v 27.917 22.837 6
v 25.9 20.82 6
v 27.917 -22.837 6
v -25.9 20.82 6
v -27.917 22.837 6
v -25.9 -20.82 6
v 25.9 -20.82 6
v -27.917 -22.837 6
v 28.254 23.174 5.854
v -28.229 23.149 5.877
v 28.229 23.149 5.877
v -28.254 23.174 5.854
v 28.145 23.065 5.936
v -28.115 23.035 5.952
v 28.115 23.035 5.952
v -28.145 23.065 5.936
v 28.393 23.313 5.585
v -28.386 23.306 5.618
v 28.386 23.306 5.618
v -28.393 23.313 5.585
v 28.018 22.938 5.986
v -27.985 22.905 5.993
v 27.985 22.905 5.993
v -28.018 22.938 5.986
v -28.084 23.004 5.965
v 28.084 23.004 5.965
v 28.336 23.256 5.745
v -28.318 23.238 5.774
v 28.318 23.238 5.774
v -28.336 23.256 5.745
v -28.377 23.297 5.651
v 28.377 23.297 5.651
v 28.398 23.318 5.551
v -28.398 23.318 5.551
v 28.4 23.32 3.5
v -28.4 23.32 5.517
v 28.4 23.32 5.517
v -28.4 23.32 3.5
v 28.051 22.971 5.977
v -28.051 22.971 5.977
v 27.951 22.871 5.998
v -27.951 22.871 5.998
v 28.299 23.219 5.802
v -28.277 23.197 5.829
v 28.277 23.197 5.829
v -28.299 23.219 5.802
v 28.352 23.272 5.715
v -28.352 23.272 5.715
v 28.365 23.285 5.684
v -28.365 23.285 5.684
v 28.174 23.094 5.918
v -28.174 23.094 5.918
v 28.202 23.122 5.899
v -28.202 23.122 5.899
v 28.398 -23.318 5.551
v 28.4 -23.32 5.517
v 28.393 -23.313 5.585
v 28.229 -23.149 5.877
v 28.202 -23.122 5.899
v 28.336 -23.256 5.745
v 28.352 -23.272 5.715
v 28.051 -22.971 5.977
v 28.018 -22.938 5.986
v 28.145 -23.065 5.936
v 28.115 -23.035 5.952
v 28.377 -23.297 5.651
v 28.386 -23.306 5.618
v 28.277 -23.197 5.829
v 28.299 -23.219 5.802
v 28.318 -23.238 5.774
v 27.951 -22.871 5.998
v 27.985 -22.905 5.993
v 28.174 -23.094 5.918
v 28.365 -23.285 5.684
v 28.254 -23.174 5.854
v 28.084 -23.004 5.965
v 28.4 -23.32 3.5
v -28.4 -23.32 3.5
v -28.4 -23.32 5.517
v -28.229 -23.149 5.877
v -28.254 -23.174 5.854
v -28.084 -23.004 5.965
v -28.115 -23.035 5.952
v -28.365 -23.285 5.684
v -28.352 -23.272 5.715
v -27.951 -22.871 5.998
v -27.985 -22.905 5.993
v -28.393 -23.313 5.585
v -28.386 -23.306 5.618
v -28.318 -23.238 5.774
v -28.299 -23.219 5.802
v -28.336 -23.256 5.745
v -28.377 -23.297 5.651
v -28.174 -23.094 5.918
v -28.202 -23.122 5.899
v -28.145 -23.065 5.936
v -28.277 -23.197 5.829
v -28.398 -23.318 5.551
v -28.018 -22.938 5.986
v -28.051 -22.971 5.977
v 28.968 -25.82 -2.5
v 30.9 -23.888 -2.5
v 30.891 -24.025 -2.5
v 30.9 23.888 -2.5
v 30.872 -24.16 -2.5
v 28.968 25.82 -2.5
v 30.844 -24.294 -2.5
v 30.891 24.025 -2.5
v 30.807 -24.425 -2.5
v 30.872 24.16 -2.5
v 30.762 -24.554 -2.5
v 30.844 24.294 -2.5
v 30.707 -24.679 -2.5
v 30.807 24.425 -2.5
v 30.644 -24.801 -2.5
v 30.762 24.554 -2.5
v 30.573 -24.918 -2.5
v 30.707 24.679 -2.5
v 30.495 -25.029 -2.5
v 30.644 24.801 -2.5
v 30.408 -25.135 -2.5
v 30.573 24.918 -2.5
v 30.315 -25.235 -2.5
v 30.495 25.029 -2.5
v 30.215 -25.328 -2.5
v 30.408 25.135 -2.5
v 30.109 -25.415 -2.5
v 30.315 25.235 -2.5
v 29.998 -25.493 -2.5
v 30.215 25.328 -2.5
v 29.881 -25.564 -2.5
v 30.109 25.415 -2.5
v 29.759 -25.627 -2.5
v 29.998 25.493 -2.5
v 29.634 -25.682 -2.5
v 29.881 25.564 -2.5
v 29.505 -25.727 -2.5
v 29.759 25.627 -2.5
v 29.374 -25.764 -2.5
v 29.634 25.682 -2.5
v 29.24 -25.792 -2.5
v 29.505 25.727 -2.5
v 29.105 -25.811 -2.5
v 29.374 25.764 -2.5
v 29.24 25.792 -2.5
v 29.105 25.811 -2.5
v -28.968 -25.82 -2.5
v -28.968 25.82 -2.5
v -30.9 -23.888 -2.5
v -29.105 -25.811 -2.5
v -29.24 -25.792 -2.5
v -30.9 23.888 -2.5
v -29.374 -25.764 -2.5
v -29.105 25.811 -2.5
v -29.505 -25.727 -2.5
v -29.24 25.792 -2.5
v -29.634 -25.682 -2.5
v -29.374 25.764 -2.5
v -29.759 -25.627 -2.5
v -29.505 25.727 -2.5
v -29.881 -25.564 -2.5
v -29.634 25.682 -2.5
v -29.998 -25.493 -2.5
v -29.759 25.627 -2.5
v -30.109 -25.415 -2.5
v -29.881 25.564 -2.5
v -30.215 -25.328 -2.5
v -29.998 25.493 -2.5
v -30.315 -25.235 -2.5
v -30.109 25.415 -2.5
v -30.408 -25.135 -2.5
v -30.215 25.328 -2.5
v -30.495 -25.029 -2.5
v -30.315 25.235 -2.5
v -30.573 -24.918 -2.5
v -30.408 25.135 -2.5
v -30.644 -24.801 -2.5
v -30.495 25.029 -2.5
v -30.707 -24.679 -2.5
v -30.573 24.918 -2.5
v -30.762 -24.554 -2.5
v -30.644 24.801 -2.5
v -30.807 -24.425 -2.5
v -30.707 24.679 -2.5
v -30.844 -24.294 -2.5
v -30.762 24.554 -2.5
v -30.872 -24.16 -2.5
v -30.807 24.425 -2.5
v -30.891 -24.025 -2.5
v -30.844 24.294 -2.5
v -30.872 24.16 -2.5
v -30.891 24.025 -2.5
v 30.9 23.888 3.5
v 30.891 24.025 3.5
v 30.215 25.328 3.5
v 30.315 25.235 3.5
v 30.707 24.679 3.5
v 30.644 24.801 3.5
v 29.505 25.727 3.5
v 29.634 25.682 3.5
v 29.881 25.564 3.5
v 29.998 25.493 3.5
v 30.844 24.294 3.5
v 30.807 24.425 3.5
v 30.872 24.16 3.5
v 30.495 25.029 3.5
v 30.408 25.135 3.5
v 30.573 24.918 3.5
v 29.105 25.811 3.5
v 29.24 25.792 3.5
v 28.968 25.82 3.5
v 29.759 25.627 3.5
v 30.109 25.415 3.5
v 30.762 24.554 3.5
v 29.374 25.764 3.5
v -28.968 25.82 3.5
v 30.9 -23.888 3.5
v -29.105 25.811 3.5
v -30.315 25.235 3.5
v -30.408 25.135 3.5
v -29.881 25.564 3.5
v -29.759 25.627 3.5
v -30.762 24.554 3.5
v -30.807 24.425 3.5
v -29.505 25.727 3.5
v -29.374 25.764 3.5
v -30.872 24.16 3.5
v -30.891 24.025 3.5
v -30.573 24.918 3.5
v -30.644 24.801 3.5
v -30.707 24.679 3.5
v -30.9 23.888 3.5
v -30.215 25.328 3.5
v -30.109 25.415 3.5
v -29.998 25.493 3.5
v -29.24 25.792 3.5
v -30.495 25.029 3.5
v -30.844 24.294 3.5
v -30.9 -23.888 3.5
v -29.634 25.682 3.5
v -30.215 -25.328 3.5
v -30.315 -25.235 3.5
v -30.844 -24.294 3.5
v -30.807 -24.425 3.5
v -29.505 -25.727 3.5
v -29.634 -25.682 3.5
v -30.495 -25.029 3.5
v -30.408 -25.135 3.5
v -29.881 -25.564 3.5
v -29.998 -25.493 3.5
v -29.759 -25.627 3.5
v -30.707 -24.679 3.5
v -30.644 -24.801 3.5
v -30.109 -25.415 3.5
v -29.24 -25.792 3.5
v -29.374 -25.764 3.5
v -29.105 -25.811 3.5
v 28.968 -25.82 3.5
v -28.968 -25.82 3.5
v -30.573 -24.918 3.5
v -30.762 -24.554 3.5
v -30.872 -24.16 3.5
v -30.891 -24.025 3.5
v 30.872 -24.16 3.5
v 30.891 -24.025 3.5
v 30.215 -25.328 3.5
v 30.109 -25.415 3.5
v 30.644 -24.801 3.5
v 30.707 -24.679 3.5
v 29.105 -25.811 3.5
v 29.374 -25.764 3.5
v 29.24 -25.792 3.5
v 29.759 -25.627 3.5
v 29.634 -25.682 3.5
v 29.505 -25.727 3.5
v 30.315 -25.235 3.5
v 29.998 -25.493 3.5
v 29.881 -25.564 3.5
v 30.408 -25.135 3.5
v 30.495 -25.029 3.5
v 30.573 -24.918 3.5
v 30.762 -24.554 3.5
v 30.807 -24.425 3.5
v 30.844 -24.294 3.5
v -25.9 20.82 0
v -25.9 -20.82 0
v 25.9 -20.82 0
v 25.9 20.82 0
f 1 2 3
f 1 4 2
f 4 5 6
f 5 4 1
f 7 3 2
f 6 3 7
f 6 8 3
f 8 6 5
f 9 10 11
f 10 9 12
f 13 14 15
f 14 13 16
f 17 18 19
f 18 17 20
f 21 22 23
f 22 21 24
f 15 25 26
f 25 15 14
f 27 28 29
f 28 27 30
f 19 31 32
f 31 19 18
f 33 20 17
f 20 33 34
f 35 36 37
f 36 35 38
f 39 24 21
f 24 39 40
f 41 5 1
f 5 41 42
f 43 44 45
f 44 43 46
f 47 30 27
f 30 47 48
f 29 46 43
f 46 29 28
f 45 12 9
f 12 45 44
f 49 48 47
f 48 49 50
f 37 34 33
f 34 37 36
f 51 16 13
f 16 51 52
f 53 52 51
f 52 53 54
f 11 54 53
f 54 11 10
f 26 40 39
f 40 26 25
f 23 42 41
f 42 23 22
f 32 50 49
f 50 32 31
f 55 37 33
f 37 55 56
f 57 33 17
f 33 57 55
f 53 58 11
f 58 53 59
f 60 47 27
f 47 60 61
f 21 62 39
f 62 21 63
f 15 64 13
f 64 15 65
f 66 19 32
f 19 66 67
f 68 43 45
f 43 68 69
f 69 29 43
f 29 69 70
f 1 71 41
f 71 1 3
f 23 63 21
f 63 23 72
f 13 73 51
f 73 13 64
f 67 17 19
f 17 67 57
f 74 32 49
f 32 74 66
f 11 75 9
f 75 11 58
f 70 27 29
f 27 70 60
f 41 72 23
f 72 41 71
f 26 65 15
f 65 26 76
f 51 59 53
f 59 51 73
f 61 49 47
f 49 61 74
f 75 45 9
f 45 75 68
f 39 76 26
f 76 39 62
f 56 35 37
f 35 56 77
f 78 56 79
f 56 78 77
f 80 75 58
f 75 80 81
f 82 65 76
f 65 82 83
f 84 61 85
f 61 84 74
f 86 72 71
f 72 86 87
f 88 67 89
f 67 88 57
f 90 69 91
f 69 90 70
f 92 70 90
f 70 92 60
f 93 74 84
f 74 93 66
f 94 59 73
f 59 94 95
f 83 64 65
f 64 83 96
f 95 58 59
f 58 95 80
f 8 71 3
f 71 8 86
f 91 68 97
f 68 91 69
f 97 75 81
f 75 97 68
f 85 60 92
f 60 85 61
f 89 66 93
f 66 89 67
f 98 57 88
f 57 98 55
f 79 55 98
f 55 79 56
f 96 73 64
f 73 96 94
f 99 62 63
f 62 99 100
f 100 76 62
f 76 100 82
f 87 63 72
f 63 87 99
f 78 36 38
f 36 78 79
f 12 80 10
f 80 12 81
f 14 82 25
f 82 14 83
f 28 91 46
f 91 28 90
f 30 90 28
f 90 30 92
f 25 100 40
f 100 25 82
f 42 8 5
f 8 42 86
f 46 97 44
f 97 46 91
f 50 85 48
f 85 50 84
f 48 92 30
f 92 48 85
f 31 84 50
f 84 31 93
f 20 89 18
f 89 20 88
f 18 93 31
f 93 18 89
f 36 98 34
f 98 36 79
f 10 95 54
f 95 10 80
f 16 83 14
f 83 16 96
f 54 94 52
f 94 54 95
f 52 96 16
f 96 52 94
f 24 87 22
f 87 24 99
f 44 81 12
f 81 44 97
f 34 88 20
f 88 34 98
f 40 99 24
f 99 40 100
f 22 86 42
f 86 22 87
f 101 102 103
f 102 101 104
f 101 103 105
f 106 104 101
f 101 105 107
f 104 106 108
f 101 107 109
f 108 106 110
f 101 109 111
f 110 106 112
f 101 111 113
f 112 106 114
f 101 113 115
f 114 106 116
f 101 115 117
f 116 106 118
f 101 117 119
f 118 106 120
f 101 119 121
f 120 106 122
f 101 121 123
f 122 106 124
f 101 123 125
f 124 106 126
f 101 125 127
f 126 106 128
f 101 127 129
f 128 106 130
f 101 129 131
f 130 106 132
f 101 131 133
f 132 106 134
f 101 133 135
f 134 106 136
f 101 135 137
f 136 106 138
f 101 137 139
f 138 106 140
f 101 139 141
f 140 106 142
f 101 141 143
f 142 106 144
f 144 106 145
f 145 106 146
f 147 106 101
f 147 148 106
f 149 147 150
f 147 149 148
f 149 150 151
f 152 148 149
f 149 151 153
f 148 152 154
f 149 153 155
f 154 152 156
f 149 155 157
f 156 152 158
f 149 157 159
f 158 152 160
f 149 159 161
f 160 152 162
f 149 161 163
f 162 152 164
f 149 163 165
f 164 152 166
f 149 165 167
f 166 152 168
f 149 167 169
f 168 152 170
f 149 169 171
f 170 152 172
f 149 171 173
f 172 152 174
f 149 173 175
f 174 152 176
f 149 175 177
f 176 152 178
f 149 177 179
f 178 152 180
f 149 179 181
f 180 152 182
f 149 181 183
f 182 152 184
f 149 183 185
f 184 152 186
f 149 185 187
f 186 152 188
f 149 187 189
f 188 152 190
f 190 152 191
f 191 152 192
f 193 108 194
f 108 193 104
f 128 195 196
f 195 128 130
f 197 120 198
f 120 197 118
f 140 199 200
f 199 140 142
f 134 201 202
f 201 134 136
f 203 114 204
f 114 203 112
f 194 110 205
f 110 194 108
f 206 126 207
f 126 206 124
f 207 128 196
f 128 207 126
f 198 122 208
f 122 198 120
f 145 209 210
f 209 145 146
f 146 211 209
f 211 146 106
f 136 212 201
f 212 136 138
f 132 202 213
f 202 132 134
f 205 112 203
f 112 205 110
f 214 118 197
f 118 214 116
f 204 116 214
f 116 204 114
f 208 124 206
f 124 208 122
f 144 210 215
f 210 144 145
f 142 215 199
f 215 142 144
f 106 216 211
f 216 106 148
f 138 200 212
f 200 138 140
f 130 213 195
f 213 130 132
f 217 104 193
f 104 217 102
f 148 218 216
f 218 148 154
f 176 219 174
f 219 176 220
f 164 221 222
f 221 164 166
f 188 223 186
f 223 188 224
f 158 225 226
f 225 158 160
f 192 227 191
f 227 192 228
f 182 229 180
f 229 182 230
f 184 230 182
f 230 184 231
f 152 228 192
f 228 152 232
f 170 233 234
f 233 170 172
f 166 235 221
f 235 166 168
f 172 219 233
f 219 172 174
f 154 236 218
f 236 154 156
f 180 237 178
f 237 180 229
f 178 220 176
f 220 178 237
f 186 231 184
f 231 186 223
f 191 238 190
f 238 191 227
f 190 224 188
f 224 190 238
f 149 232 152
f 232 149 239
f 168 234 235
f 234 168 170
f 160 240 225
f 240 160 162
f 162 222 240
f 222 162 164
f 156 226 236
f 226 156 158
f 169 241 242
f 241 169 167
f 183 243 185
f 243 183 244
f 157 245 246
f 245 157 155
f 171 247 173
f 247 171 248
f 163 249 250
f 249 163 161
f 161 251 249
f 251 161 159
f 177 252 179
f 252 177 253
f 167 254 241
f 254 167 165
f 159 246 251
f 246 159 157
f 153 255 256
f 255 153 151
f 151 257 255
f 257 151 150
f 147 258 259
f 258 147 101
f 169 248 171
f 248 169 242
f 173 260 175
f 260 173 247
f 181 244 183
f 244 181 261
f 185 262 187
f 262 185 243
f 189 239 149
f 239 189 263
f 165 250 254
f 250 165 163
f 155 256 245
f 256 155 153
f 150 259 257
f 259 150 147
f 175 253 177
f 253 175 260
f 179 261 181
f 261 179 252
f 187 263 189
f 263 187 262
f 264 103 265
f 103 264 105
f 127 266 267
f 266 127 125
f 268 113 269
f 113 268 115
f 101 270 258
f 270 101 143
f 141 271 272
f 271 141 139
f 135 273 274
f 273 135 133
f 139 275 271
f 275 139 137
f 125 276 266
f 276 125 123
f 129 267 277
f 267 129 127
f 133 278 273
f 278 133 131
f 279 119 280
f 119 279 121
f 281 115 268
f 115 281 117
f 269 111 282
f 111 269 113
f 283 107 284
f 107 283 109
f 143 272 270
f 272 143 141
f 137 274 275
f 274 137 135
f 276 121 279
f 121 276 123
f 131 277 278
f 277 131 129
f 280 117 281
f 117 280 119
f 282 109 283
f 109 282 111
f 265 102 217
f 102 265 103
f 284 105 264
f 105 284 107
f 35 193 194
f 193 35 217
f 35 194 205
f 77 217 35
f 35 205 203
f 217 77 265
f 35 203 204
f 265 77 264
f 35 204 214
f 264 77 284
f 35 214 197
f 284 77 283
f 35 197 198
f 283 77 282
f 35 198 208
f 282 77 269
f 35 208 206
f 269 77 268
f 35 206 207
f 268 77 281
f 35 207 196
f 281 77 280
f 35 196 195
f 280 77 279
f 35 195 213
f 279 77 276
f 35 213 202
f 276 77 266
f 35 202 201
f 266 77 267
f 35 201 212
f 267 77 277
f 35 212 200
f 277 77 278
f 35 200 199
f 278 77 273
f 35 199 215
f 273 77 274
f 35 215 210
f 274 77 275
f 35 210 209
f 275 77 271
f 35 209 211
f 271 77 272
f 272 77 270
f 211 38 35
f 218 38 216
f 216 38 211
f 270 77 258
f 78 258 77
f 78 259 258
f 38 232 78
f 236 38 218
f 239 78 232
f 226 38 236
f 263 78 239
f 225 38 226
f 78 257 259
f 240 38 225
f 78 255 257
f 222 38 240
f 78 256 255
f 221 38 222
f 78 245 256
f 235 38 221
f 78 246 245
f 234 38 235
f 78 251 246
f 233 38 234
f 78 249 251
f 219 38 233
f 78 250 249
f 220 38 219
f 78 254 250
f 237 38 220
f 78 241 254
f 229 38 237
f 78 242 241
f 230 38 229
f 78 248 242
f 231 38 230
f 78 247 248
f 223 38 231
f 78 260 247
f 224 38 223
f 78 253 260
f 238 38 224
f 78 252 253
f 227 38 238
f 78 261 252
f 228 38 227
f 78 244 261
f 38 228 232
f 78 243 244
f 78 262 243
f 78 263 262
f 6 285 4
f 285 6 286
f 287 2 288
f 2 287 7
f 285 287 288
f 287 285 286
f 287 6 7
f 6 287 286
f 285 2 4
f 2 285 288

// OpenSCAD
/*
 * SwitchIR Board Enclosure Lid
 */

include <BOSL/constants.scad>
use <BOSL/shapes.scad>
use <BOSL/transforms.scad>

include <common.scad>

lid_height = 6;
lid_overlap  = 2.5;
lid_overlaps = 5.0;

$fn = 90;

// build it

color("cornflowerblue")
lid();

//---------------------

// modules

module lid() {
  difference() {
    down(box_wall) {
      cuboid([box_x, box_y, lid_height+lid_overlap],
             align=V_TOP, fillet=0.5, edges=EDGES_TOP);
      cuboid([box_x+box_walls, box_y+box_walls, lid_height],
             align=V_TOP, fillet=2, edges=EDGES_Z_ALL);
    }

    cuboid([box_x-lid_overlaps, box_y-lid_overlaps,
           lid_height+lid_overlap], align=V_TOP);
  }
}
